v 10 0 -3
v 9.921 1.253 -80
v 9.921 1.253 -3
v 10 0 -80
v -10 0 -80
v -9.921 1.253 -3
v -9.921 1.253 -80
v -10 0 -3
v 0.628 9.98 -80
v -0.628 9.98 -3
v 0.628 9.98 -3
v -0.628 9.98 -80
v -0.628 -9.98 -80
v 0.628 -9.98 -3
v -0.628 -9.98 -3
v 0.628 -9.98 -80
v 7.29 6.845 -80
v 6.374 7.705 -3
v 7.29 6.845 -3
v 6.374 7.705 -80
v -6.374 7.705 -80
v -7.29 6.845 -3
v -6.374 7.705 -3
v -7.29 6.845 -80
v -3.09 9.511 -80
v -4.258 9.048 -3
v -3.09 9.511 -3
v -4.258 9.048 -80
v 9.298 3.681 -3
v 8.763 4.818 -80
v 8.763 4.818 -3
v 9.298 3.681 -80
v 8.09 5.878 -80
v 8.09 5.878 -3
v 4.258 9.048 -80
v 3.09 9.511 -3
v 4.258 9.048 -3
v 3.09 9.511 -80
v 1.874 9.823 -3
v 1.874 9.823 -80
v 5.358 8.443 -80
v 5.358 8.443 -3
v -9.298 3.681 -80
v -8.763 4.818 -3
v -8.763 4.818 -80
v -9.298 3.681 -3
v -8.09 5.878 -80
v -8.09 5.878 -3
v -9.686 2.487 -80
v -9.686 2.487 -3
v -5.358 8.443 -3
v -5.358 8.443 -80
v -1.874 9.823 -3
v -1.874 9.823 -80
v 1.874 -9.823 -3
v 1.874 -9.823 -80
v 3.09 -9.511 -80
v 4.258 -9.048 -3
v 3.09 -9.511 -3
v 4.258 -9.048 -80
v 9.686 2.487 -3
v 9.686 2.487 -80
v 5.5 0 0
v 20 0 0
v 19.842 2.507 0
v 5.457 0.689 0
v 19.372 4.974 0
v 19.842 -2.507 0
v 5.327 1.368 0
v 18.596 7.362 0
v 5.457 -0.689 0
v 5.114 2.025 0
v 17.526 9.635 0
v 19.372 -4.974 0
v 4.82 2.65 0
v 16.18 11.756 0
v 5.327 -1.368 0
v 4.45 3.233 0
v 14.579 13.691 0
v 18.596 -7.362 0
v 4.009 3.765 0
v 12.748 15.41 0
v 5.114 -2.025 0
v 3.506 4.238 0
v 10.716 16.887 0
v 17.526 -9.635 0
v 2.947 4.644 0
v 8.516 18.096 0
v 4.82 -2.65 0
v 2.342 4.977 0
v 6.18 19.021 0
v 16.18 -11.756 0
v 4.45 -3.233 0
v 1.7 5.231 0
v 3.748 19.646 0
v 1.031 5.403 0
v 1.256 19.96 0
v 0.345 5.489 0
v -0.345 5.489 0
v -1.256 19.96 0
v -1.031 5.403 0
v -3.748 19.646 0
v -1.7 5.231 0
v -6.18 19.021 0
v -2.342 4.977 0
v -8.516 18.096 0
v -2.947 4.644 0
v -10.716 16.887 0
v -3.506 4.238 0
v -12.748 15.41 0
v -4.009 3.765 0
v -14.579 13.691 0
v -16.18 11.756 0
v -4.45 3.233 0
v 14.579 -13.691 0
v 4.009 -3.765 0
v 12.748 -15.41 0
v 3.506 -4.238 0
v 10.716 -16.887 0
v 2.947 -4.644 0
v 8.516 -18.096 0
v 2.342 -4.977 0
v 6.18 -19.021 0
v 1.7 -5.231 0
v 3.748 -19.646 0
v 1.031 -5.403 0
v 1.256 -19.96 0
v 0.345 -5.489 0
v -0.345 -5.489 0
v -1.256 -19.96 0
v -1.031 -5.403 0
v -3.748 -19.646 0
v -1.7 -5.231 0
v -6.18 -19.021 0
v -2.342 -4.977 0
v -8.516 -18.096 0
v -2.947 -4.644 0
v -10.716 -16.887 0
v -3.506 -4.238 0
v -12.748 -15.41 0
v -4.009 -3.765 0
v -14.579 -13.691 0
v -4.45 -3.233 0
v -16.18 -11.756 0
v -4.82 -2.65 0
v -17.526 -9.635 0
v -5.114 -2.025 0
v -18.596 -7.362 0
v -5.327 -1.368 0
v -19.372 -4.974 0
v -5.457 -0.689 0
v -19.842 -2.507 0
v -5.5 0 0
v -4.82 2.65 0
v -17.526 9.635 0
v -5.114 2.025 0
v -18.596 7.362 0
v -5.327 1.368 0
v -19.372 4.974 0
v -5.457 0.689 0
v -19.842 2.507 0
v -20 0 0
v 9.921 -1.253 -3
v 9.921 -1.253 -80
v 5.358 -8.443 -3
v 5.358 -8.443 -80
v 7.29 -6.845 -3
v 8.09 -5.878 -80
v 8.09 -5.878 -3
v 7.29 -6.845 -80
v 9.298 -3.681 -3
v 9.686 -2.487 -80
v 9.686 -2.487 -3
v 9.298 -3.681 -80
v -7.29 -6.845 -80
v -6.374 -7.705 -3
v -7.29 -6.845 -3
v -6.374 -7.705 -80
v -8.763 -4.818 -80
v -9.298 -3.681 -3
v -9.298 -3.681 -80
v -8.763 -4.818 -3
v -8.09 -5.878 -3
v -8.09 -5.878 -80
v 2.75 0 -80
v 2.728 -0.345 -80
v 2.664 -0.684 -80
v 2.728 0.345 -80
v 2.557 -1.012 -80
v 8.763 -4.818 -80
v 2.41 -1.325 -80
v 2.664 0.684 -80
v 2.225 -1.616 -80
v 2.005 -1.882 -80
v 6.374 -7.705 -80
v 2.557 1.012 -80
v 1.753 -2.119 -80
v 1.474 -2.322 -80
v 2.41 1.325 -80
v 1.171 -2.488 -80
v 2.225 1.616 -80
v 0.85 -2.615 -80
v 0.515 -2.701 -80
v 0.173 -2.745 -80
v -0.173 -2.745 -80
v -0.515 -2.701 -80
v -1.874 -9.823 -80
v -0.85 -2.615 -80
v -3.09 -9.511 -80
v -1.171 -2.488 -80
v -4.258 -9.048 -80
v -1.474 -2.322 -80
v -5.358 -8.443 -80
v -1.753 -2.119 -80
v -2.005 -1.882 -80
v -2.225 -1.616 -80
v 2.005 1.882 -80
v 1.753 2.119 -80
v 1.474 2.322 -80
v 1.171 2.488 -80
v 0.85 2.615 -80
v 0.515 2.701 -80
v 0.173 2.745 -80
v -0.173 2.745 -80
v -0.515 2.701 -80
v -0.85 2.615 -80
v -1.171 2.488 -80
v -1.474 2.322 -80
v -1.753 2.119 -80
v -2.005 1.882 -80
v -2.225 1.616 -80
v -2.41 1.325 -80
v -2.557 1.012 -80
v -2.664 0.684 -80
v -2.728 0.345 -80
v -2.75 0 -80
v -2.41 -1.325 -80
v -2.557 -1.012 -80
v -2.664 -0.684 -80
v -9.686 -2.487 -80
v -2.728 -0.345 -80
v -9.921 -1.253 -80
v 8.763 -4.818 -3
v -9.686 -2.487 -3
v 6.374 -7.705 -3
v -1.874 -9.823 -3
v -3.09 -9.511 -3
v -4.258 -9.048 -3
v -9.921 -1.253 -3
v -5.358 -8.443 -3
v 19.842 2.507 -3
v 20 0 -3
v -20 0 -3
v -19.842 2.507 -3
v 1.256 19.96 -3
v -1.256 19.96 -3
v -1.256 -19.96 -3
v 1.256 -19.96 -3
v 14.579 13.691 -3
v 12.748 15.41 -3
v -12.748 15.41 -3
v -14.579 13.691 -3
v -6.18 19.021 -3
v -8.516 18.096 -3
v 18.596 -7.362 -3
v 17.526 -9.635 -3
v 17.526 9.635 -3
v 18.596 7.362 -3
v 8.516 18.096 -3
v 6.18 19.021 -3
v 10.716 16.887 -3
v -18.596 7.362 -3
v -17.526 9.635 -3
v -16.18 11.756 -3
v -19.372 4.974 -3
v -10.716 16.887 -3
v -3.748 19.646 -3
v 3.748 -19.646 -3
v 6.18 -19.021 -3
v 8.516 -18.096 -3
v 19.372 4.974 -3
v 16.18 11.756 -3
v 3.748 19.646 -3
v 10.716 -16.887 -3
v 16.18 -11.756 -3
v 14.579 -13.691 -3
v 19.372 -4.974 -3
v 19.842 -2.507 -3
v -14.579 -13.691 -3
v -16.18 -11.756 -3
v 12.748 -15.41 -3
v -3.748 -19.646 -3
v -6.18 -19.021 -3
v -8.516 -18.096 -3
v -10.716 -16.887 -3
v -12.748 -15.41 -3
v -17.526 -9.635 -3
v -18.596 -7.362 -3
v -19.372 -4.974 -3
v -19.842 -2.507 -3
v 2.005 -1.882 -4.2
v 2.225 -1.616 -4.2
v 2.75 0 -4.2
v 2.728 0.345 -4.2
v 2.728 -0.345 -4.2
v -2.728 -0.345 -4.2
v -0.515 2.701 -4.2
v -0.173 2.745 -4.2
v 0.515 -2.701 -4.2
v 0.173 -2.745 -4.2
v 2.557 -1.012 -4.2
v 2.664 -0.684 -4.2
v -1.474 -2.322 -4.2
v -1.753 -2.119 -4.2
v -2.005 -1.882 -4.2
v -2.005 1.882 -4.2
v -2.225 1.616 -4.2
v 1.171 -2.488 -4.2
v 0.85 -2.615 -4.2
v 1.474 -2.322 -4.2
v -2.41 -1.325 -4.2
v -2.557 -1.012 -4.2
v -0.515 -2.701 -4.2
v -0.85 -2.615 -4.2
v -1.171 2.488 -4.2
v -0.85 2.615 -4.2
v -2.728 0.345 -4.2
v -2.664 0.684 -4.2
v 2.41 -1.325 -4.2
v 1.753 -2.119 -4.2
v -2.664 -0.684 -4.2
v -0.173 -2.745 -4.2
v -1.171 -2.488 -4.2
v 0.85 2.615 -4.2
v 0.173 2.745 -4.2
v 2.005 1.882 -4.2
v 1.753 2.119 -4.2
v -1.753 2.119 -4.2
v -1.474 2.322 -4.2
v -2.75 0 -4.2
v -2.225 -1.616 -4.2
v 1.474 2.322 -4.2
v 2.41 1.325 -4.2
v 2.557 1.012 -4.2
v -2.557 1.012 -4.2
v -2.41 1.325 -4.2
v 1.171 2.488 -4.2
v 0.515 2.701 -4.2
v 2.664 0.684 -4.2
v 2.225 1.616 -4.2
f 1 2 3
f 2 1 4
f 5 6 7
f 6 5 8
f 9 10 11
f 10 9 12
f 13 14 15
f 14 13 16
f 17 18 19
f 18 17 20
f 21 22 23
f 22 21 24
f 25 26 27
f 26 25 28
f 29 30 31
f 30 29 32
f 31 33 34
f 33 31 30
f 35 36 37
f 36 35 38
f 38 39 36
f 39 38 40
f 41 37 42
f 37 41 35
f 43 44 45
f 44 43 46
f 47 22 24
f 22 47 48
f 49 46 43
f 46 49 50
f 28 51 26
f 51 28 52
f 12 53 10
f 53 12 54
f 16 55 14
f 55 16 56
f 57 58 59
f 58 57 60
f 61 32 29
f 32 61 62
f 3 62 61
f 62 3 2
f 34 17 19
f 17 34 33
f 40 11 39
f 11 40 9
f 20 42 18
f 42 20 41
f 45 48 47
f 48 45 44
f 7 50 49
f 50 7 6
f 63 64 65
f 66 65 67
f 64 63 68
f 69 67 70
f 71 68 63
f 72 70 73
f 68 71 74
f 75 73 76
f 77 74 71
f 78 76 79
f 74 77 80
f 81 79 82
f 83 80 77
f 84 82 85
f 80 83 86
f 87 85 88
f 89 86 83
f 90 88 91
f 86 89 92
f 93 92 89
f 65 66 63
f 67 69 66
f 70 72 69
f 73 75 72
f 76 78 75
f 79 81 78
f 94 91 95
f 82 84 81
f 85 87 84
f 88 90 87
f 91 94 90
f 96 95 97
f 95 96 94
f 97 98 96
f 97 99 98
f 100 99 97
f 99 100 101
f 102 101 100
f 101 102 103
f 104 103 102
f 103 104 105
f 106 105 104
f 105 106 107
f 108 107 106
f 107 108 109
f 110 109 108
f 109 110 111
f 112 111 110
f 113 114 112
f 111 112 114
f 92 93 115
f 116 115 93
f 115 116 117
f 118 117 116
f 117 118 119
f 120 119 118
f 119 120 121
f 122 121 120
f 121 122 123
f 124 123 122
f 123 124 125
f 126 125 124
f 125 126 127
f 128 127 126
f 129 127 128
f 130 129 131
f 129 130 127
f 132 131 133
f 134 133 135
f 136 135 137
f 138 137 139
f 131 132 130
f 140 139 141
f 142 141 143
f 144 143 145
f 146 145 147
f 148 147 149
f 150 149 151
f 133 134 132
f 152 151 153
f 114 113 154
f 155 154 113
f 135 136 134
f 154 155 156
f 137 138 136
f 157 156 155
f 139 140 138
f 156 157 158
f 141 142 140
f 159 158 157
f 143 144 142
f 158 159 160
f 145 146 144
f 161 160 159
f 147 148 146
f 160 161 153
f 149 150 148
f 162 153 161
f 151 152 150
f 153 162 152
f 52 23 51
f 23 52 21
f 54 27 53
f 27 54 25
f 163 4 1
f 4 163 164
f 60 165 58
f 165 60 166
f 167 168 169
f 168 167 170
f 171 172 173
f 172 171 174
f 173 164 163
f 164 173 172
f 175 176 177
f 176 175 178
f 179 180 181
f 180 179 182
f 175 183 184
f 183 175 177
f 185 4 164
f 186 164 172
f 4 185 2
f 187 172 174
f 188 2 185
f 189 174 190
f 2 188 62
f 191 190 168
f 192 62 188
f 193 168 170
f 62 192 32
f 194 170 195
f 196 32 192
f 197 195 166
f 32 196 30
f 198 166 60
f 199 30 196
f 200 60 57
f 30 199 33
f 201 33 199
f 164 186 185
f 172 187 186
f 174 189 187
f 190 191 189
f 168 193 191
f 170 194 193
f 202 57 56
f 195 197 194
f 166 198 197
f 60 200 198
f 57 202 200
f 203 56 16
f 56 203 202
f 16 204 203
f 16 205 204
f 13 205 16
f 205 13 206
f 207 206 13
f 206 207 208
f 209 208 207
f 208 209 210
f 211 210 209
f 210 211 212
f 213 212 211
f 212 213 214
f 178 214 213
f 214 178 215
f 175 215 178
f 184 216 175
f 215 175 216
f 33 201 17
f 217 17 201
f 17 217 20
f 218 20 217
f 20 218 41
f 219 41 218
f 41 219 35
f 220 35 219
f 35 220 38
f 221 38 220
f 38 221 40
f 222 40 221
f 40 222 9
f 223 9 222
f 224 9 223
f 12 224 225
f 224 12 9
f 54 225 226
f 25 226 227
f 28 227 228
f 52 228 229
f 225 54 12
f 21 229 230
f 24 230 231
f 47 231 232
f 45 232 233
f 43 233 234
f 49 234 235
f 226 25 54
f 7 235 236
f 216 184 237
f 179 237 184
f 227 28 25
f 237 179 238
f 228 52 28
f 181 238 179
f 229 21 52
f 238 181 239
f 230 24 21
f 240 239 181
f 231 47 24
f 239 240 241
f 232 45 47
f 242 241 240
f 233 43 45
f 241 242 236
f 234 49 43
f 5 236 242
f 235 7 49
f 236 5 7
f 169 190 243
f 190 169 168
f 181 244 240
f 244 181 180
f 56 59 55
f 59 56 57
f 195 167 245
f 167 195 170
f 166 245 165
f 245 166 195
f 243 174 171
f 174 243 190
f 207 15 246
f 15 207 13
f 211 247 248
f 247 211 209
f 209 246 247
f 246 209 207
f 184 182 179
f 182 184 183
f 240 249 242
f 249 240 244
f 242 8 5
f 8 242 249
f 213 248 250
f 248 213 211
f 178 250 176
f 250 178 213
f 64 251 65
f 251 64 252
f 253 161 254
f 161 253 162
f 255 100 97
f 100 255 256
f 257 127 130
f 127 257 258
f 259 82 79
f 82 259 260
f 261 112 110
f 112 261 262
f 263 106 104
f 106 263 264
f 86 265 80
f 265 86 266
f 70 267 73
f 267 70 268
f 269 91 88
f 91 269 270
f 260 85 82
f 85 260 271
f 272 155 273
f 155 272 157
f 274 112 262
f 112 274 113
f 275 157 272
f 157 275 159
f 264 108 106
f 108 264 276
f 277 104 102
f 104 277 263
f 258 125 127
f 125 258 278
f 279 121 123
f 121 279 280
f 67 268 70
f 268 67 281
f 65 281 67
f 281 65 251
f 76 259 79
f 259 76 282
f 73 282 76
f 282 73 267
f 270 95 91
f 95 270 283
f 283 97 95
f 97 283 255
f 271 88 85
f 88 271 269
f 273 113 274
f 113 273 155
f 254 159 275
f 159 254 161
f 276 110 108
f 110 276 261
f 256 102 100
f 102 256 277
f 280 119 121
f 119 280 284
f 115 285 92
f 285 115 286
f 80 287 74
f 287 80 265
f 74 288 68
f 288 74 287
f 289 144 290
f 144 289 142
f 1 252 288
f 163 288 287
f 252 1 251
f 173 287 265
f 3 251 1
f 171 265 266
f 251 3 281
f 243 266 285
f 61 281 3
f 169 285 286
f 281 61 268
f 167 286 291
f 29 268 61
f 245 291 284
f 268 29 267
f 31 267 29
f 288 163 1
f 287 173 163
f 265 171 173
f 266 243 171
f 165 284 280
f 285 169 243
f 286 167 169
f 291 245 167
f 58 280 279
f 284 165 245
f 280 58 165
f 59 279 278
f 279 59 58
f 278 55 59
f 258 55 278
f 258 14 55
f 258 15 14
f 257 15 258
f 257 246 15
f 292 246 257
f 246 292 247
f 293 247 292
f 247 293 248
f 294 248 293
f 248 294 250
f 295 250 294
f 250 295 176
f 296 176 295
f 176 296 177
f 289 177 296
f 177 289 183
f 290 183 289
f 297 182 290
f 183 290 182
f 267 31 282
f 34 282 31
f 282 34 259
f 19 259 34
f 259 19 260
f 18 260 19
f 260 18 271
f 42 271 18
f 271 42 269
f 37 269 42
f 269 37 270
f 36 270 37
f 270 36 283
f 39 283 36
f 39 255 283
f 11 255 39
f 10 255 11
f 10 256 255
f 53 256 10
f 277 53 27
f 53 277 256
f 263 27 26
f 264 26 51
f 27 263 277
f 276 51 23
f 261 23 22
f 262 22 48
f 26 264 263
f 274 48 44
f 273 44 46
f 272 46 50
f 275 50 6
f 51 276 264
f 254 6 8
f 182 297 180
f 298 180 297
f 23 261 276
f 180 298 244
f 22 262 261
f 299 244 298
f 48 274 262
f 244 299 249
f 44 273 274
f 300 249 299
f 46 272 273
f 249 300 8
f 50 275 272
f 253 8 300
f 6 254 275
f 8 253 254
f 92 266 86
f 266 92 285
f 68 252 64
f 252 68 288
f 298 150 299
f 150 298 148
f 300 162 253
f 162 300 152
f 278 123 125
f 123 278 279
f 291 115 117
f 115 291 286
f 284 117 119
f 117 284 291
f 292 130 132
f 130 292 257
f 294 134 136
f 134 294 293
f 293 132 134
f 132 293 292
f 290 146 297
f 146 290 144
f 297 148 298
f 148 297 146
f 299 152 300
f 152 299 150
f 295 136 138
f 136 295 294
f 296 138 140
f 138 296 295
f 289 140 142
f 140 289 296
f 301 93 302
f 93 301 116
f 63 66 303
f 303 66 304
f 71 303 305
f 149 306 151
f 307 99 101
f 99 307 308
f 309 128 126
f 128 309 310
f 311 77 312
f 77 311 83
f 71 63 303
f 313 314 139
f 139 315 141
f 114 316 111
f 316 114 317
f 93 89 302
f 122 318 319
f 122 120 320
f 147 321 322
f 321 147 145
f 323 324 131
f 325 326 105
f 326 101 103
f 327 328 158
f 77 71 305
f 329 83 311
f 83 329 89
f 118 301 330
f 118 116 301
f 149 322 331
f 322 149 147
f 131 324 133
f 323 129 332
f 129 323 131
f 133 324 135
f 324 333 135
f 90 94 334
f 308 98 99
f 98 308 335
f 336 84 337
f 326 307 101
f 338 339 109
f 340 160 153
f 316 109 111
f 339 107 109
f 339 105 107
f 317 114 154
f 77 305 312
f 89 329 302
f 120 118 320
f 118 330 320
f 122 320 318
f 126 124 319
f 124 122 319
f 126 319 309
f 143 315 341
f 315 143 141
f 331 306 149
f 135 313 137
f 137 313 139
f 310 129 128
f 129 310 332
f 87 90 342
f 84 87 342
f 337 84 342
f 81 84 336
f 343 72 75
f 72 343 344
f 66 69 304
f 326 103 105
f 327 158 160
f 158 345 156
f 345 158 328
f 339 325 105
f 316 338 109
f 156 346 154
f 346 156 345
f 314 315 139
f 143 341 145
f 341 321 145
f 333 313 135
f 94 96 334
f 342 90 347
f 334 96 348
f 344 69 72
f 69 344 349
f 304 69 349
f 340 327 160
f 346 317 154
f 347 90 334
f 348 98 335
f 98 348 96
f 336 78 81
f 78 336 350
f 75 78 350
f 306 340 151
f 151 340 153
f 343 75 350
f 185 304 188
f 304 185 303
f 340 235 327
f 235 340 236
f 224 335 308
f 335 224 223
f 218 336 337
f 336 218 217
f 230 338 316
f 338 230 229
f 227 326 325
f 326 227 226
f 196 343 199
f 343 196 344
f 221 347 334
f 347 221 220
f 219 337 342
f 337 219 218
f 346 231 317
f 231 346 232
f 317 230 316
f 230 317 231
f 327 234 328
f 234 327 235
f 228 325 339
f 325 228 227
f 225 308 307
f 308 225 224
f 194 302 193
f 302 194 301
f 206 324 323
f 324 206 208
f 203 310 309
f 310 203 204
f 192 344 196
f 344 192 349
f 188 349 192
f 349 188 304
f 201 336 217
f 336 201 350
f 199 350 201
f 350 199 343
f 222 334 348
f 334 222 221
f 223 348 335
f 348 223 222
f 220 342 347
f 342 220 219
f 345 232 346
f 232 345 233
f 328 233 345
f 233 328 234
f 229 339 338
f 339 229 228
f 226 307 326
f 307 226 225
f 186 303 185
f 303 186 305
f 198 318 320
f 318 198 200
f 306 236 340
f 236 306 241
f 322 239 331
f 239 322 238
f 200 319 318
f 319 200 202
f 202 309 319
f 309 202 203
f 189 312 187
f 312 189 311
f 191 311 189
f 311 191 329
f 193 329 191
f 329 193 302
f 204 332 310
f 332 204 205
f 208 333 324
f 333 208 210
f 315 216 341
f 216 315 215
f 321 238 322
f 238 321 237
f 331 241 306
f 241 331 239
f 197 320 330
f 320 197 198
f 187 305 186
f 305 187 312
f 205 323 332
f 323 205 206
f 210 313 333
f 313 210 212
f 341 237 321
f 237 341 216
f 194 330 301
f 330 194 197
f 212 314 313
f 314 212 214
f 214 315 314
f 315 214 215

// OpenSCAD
$fn = 50;


difference() {
	union() {
		translate(v = [0, 0, -80.0000000000]) {
			cylinder(h = 80, r = 10.0000000000);
		}
		translate(v = [0, 0, -3.0000000000]) {
			cylinder(h = 3, r = 20.0000000000);
		}
	}
	union() {
		translate(v = [0, 0, 0]) {
			rotate(a = [0, 0, 0]) {
				difference() {
					union() {
						#translate(v = [0, 0, -80.0000000000]) {
							cylinder(h = 80, r = 2.2500000000);
						}
						#translate(v = [0, 0, -4.2000000000]) {
							cylinder(h = 4.2000000000, r1 = 2.7500000000, r2 = 5.5000000000);
						}
						#translate(v = [0, 0, -80.0000000000]) {
							cylinder(h = 80, r = 2.7500000000);
						}
						#translate(v = [0, 0, -80.0000000000]) {
							cylinder(h = 80, r = 2.2500000000);
						}
					}
					union();
				}
			}
		}
	}
}
